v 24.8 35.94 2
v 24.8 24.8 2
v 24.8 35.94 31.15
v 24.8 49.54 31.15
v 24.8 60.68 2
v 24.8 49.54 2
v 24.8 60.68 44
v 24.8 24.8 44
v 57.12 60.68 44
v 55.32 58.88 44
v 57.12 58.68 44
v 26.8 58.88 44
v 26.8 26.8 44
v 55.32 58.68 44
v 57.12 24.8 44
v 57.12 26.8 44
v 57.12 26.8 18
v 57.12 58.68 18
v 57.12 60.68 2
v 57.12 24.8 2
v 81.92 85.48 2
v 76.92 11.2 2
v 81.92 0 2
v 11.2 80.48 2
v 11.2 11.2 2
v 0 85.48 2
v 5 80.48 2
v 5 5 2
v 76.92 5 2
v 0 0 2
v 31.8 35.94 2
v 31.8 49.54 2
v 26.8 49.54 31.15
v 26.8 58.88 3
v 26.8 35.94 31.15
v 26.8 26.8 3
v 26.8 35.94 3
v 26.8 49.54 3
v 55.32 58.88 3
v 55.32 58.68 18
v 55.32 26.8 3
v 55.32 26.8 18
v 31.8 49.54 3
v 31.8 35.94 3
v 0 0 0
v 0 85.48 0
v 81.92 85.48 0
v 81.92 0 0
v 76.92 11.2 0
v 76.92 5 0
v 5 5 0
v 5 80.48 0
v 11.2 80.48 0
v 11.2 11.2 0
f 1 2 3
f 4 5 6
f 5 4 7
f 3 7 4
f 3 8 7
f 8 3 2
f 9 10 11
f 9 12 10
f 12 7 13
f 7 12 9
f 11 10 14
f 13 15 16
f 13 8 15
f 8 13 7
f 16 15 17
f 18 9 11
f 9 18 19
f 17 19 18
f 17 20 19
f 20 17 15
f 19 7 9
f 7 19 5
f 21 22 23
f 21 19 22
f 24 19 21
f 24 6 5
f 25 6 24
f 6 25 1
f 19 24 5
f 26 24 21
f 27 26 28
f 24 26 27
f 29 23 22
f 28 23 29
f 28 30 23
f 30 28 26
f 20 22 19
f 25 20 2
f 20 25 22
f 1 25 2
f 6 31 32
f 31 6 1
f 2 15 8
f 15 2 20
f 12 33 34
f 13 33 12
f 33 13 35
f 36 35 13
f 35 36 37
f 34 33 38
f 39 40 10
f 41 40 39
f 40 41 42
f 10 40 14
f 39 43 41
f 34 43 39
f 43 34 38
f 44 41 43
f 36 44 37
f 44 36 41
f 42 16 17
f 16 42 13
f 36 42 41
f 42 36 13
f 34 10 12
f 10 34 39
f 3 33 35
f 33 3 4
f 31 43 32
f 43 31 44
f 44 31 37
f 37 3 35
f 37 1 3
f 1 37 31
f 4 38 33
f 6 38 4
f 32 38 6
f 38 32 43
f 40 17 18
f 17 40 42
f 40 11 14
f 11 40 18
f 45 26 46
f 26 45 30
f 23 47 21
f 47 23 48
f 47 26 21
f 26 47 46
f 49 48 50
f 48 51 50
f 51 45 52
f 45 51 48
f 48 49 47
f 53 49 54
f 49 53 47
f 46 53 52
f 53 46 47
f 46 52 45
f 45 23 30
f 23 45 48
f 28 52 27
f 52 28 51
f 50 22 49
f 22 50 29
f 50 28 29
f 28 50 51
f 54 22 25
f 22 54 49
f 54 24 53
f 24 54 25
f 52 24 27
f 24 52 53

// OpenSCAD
// system to hold rotameters and pressure controller of the odour stimulator



//printing tolerance
//should be changed depending on printer
tol = 0.1;

//thorlabs plate (25X30cm)

thorx = 250;
thory = 300;
thorz = 10;

//thorlabs plate holes (square grid of M6 tapped holes)
screwd=6;
screwh=thorz+5;
screwspace = 24.8;
screwoffset = 9.3;

//rotameter 
////base
rotx = 28.32;
roty = 31.88;
rotz = 38;
frontwall = 15;
rotwall = 4;
////screw in connector
connd = 13.6;
connh = 19.15;




module plate(){
    difference(){
    cube([thorx,thory,thorz]);
    for (j = [screwoffset+screwd/2:screwspace:thory-screwoffset]){ 
        for (i = [screwoffset+screwd/2:screwspace:thorx-screwoffset]){ 
            translate([i,j,-2]){
                cylinder(d=screwd,h=screwh);
            }//end translate
        }//end i for loop
    }//end j for loop
}//end differnce
}//end plate
    
    
//plate();    


module rotameter(){

basex = 2*screwspace+rotx+rotwall;
basey = 2*screwspace+roty+rotwall;
basez = 2;
difference(){
    union(){
cube([basex,basey,basez]);
    translate([(basex-rotx-rotwall)/2,(basey-roty-rotwall)/2,basez]){
        difference(){
            cube([rotx+rotwall,roty+rotwall,rotz+rotwall]);
            translate([2,2,1]){
                cube([rotx+2*tol,roty+2*tol,rotz+5]);
            }//end translate
            translate([-1,(roty+rotwall-connd)/2,0]){
                cube([rotwall+4,connd,connh+10]);
            }//end translate
            translate([rotx,rotwall/2,frontwall+1]){
                cube([10,roty,rotz+rotwall-frontwall]);
            }//end translate
                }//end difference
        
        
    }//end translate
}//end union
    translate([5,5,-basez]){
        cube([basex-10,screwd+2*tol,5]);
        }//end translate
    translate([5,5,-basez]){
        cube([screwd+2*tol,basey-10,5]);
    }//end translate
}// end difference
}//end rotameter



module digitalPressure(){

}//end digital pressure

//plate();
//translate([screwoffset/2,screwoffset/2,thorz]){
rotameter();
//}
